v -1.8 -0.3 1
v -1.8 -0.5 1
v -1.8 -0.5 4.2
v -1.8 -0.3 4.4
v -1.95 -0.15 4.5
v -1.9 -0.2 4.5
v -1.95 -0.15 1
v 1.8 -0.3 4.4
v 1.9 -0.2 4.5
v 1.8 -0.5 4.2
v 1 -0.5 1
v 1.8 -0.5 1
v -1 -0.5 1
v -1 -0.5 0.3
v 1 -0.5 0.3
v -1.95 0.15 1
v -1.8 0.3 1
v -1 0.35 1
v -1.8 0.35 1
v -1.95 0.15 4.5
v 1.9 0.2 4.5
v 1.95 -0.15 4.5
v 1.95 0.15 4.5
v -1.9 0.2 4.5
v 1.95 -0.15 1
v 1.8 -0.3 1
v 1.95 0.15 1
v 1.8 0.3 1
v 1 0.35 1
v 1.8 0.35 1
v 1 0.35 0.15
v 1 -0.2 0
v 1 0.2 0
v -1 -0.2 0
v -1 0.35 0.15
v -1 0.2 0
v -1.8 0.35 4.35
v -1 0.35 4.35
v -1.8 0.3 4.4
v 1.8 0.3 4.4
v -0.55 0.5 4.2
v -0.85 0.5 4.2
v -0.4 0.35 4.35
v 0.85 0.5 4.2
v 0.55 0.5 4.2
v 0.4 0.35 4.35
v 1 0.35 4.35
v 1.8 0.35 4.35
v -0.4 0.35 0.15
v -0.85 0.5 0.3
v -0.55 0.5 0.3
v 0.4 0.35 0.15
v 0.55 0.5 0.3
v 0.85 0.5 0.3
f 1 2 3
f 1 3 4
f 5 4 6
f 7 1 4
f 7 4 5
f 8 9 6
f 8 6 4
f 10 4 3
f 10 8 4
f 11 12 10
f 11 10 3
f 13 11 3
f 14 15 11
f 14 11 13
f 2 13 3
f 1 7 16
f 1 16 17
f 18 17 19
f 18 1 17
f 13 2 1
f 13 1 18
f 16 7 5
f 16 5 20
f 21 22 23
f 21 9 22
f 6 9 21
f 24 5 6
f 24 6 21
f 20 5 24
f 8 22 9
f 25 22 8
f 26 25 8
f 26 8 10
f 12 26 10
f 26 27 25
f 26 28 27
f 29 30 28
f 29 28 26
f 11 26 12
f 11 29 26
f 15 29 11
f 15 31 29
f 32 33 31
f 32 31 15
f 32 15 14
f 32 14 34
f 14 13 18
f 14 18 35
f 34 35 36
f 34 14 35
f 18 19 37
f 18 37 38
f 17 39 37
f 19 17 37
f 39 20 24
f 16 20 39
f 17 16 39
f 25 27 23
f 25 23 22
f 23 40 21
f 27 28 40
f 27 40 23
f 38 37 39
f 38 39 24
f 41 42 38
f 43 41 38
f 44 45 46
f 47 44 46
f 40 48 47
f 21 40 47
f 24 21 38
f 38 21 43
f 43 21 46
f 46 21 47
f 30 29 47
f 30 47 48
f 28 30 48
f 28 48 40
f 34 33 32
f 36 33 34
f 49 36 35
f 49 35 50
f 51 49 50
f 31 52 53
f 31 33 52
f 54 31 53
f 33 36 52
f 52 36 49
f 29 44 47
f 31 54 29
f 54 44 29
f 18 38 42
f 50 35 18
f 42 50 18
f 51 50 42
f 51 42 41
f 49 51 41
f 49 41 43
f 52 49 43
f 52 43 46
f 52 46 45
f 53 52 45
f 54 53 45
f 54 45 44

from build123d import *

# Parameters (mm, degrees)
PAD005_DEPTH         = 4.5
SKETCH_W             = 1
SKETCH_H             = 1
POCKET_DEPTH         = 0.501
POCKET_DEPTH_BACK    = -0.501
SKETCH009_R          = 6
POCKET001_DEPTH      = 1.951
POCKET001_DEPTH_BACK = -1.951


with BuildPart() as part:
    # Sketch008 → Pad005 (new body)
    with BuildSketch(Plane.XY):
        Polygon((-1.8, -0.5), (-1.8, -0.3), (-1.95, -0.15), (-1.95, 0.15), (-1.8, 0.3), (-1.8, 0.35), (-1, 0.35), (-0.85, 0.5), (-0.55, 0.5), (-0.4, 0.35), (0.4, 0.35), (0.55, 0.5), (0.85, 0.5), (1, 0.35), (1.8, 0.35), (1.8, 0.3), (1.95, 0.15), (1.95, -0.15), (1.8, -0.3), (1.8, -0.5), align=None)
    extrude(amount=PAD005_DEPTH)

    # Sketch → Pocket (cut, two sides)
    with BuildSketch(Plane.XZ) as pocket_sk:
        with Locations((-1.5, 0.5)):
            Rectangle(SKETCH_W, SKETCH_H)
        with Locations((1.5, 0.5)):
            Rectangle(SKETCH_W, SKETCH_H)
    extrude(amount=-POCKET_DEPTH, mode=Mode.SUBTRACT)
    extrude(pocket_sk.sketch, amount=-POCKET_DEPTH_BACK, mode=Mode.SUBTRACT)

    # Sketch009 → Pocket001 (cut, two sides)
    with BuildSketch(Plane.YZ) as pocket001_sk:
        Circle(SKETCH009_R)
        Polygon((-0.5, 4.2), (-0.5, 0.3), (-0.2, 0), (0.2, 0), (0.5, 0.3), (0.5, 4.2), (0.2, 4.5), (-0.2, 4.5), align=None, mode=Mode.SUBTRACT)
    extrude(amount=-POCKET001_DEPTH, mode=Mode.SUBTRACT)
    extrude(pocket001_sk.sketch, amount=-POCKET001_DEPTH_BACK, mode=Mode.SUBTRACT)


solid = part.part
